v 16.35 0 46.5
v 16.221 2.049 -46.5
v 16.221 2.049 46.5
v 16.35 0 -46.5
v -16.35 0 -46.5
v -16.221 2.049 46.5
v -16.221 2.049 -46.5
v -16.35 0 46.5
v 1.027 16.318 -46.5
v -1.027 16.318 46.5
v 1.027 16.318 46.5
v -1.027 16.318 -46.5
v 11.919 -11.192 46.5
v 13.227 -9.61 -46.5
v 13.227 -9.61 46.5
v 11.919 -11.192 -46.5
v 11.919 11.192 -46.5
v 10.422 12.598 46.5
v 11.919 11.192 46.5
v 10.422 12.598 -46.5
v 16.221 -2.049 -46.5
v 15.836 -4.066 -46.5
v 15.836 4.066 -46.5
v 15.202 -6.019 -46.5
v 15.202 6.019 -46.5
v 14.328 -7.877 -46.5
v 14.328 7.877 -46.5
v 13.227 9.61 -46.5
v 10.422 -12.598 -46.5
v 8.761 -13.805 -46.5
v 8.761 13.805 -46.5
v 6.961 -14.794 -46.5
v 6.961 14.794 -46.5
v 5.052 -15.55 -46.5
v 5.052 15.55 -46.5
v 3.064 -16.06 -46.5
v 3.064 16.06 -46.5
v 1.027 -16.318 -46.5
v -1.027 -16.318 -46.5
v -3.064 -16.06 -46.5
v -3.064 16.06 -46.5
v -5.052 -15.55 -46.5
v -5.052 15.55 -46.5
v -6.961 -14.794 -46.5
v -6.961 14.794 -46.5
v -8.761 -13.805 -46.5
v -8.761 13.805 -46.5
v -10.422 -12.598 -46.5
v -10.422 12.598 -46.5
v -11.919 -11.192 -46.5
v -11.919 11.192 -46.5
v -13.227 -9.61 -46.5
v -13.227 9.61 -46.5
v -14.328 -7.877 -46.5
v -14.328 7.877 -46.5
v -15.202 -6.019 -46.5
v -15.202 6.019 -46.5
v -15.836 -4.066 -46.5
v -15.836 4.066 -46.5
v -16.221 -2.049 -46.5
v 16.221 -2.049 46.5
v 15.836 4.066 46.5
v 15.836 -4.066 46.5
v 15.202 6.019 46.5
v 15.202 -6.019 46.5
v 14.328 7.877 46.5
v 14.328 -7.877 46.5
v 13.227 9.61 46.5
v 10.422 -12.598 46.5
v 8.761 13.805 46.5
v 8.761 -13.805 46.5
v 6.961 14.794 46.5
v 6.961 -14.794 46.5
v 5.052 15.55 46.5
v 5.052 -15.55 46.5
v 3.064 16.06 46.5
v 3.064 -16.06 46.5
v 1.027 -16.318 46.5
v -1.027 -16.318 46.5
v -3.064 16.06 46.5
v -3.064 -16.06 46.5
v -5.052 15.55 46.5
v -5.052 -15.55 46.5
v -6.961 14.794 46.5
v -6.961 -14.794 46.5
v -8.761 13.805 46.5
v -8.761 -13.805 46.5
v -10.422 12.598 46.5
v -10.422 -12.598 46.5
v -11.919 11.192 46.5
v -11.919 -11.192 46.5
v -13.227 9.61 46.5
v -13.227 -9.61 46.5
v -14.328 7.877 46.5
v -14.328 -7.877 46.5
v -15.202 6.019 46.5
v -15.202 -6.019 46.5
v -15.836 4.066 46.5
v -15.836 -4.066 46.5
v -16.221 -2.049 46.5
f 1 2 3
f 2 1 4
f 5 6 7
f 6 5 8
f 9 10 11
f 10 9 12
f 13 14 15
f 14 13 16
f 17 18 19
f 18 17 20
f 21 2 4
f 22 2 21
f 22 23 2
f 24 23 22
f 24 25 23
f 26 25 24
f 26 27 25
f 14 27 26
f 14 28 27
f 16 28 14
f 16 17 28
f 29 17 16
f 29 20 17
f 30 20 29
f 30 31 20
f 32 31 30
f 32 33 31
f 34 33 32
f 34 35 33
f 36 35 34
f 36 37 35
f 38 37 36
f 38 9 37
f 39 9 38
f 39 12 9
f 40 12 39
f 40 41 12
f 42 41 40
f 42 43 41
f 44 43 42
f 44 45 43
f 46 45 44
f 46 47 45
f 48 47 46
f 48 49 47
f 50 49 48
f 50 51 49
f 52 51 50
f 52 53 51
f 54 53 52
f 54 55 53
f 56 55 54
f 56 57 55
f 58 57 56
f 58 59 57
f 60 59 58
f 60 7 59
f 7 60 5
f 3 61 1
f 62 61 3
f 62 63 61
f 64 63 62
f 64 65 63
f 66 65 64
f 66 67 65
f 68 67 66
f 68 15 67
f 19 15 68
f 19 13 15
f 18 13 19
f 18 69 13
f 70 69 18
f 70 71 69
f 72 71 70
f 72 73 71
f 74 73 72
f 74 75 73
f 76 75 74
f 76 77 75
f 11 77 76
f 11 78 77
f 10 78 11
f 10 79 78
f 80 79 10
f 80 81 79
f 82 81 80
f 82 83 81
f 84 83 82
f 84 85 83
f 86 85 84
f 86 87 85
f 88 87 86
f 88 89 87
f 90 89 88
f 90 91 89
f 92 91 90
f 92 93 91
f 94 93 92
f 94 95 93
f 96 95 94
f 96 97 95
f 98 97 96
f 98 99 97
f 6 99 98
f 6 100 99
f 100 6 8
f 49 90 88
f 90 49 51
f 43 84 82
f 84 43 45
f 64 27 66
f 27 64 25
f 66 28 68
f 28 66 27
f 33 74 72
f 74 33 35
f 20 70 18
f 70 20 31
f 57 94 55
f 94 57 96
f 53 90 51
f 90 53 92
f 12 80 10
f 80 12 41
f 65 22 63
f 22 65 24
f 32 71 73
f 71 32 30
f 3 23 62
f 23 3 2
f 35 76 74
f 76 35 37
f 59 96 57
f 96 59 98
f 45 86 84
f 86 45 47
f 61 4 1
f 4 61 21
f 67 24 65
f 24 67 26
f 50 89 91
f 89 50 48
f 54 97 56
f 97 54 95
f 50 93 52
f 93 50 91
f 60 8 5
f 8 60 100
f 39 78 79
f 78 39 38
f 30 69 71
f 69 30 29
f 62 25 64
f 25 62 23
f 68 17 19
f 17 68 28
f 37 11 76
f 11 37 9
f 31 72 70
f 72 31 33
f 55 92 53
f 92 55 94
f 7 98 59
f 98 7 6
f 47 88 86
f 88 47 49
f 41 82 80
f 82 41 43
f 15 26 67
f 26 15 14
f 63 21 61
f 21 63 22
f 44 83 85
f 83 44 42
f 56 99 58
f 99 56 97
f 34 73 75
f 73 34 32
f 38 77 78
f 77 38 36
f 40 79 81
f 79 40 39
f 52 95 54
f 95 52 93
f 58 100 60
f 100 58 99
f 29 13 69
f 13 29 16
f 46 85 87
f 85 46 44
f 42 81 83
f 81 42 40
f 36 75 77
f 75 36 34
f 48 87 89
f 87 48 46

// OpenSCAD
$fn = 50;


difference() {
	union() {
		translate(v = [0, 0, -46.5000000000]) {
			cylinder(h = 93, r = 16.3500000000);
		}
	}
	union() {
		translate(v = [0, 0, -100.0000000000]) {
			cylinder(h = 200, r = 0);
		}
	}
}
